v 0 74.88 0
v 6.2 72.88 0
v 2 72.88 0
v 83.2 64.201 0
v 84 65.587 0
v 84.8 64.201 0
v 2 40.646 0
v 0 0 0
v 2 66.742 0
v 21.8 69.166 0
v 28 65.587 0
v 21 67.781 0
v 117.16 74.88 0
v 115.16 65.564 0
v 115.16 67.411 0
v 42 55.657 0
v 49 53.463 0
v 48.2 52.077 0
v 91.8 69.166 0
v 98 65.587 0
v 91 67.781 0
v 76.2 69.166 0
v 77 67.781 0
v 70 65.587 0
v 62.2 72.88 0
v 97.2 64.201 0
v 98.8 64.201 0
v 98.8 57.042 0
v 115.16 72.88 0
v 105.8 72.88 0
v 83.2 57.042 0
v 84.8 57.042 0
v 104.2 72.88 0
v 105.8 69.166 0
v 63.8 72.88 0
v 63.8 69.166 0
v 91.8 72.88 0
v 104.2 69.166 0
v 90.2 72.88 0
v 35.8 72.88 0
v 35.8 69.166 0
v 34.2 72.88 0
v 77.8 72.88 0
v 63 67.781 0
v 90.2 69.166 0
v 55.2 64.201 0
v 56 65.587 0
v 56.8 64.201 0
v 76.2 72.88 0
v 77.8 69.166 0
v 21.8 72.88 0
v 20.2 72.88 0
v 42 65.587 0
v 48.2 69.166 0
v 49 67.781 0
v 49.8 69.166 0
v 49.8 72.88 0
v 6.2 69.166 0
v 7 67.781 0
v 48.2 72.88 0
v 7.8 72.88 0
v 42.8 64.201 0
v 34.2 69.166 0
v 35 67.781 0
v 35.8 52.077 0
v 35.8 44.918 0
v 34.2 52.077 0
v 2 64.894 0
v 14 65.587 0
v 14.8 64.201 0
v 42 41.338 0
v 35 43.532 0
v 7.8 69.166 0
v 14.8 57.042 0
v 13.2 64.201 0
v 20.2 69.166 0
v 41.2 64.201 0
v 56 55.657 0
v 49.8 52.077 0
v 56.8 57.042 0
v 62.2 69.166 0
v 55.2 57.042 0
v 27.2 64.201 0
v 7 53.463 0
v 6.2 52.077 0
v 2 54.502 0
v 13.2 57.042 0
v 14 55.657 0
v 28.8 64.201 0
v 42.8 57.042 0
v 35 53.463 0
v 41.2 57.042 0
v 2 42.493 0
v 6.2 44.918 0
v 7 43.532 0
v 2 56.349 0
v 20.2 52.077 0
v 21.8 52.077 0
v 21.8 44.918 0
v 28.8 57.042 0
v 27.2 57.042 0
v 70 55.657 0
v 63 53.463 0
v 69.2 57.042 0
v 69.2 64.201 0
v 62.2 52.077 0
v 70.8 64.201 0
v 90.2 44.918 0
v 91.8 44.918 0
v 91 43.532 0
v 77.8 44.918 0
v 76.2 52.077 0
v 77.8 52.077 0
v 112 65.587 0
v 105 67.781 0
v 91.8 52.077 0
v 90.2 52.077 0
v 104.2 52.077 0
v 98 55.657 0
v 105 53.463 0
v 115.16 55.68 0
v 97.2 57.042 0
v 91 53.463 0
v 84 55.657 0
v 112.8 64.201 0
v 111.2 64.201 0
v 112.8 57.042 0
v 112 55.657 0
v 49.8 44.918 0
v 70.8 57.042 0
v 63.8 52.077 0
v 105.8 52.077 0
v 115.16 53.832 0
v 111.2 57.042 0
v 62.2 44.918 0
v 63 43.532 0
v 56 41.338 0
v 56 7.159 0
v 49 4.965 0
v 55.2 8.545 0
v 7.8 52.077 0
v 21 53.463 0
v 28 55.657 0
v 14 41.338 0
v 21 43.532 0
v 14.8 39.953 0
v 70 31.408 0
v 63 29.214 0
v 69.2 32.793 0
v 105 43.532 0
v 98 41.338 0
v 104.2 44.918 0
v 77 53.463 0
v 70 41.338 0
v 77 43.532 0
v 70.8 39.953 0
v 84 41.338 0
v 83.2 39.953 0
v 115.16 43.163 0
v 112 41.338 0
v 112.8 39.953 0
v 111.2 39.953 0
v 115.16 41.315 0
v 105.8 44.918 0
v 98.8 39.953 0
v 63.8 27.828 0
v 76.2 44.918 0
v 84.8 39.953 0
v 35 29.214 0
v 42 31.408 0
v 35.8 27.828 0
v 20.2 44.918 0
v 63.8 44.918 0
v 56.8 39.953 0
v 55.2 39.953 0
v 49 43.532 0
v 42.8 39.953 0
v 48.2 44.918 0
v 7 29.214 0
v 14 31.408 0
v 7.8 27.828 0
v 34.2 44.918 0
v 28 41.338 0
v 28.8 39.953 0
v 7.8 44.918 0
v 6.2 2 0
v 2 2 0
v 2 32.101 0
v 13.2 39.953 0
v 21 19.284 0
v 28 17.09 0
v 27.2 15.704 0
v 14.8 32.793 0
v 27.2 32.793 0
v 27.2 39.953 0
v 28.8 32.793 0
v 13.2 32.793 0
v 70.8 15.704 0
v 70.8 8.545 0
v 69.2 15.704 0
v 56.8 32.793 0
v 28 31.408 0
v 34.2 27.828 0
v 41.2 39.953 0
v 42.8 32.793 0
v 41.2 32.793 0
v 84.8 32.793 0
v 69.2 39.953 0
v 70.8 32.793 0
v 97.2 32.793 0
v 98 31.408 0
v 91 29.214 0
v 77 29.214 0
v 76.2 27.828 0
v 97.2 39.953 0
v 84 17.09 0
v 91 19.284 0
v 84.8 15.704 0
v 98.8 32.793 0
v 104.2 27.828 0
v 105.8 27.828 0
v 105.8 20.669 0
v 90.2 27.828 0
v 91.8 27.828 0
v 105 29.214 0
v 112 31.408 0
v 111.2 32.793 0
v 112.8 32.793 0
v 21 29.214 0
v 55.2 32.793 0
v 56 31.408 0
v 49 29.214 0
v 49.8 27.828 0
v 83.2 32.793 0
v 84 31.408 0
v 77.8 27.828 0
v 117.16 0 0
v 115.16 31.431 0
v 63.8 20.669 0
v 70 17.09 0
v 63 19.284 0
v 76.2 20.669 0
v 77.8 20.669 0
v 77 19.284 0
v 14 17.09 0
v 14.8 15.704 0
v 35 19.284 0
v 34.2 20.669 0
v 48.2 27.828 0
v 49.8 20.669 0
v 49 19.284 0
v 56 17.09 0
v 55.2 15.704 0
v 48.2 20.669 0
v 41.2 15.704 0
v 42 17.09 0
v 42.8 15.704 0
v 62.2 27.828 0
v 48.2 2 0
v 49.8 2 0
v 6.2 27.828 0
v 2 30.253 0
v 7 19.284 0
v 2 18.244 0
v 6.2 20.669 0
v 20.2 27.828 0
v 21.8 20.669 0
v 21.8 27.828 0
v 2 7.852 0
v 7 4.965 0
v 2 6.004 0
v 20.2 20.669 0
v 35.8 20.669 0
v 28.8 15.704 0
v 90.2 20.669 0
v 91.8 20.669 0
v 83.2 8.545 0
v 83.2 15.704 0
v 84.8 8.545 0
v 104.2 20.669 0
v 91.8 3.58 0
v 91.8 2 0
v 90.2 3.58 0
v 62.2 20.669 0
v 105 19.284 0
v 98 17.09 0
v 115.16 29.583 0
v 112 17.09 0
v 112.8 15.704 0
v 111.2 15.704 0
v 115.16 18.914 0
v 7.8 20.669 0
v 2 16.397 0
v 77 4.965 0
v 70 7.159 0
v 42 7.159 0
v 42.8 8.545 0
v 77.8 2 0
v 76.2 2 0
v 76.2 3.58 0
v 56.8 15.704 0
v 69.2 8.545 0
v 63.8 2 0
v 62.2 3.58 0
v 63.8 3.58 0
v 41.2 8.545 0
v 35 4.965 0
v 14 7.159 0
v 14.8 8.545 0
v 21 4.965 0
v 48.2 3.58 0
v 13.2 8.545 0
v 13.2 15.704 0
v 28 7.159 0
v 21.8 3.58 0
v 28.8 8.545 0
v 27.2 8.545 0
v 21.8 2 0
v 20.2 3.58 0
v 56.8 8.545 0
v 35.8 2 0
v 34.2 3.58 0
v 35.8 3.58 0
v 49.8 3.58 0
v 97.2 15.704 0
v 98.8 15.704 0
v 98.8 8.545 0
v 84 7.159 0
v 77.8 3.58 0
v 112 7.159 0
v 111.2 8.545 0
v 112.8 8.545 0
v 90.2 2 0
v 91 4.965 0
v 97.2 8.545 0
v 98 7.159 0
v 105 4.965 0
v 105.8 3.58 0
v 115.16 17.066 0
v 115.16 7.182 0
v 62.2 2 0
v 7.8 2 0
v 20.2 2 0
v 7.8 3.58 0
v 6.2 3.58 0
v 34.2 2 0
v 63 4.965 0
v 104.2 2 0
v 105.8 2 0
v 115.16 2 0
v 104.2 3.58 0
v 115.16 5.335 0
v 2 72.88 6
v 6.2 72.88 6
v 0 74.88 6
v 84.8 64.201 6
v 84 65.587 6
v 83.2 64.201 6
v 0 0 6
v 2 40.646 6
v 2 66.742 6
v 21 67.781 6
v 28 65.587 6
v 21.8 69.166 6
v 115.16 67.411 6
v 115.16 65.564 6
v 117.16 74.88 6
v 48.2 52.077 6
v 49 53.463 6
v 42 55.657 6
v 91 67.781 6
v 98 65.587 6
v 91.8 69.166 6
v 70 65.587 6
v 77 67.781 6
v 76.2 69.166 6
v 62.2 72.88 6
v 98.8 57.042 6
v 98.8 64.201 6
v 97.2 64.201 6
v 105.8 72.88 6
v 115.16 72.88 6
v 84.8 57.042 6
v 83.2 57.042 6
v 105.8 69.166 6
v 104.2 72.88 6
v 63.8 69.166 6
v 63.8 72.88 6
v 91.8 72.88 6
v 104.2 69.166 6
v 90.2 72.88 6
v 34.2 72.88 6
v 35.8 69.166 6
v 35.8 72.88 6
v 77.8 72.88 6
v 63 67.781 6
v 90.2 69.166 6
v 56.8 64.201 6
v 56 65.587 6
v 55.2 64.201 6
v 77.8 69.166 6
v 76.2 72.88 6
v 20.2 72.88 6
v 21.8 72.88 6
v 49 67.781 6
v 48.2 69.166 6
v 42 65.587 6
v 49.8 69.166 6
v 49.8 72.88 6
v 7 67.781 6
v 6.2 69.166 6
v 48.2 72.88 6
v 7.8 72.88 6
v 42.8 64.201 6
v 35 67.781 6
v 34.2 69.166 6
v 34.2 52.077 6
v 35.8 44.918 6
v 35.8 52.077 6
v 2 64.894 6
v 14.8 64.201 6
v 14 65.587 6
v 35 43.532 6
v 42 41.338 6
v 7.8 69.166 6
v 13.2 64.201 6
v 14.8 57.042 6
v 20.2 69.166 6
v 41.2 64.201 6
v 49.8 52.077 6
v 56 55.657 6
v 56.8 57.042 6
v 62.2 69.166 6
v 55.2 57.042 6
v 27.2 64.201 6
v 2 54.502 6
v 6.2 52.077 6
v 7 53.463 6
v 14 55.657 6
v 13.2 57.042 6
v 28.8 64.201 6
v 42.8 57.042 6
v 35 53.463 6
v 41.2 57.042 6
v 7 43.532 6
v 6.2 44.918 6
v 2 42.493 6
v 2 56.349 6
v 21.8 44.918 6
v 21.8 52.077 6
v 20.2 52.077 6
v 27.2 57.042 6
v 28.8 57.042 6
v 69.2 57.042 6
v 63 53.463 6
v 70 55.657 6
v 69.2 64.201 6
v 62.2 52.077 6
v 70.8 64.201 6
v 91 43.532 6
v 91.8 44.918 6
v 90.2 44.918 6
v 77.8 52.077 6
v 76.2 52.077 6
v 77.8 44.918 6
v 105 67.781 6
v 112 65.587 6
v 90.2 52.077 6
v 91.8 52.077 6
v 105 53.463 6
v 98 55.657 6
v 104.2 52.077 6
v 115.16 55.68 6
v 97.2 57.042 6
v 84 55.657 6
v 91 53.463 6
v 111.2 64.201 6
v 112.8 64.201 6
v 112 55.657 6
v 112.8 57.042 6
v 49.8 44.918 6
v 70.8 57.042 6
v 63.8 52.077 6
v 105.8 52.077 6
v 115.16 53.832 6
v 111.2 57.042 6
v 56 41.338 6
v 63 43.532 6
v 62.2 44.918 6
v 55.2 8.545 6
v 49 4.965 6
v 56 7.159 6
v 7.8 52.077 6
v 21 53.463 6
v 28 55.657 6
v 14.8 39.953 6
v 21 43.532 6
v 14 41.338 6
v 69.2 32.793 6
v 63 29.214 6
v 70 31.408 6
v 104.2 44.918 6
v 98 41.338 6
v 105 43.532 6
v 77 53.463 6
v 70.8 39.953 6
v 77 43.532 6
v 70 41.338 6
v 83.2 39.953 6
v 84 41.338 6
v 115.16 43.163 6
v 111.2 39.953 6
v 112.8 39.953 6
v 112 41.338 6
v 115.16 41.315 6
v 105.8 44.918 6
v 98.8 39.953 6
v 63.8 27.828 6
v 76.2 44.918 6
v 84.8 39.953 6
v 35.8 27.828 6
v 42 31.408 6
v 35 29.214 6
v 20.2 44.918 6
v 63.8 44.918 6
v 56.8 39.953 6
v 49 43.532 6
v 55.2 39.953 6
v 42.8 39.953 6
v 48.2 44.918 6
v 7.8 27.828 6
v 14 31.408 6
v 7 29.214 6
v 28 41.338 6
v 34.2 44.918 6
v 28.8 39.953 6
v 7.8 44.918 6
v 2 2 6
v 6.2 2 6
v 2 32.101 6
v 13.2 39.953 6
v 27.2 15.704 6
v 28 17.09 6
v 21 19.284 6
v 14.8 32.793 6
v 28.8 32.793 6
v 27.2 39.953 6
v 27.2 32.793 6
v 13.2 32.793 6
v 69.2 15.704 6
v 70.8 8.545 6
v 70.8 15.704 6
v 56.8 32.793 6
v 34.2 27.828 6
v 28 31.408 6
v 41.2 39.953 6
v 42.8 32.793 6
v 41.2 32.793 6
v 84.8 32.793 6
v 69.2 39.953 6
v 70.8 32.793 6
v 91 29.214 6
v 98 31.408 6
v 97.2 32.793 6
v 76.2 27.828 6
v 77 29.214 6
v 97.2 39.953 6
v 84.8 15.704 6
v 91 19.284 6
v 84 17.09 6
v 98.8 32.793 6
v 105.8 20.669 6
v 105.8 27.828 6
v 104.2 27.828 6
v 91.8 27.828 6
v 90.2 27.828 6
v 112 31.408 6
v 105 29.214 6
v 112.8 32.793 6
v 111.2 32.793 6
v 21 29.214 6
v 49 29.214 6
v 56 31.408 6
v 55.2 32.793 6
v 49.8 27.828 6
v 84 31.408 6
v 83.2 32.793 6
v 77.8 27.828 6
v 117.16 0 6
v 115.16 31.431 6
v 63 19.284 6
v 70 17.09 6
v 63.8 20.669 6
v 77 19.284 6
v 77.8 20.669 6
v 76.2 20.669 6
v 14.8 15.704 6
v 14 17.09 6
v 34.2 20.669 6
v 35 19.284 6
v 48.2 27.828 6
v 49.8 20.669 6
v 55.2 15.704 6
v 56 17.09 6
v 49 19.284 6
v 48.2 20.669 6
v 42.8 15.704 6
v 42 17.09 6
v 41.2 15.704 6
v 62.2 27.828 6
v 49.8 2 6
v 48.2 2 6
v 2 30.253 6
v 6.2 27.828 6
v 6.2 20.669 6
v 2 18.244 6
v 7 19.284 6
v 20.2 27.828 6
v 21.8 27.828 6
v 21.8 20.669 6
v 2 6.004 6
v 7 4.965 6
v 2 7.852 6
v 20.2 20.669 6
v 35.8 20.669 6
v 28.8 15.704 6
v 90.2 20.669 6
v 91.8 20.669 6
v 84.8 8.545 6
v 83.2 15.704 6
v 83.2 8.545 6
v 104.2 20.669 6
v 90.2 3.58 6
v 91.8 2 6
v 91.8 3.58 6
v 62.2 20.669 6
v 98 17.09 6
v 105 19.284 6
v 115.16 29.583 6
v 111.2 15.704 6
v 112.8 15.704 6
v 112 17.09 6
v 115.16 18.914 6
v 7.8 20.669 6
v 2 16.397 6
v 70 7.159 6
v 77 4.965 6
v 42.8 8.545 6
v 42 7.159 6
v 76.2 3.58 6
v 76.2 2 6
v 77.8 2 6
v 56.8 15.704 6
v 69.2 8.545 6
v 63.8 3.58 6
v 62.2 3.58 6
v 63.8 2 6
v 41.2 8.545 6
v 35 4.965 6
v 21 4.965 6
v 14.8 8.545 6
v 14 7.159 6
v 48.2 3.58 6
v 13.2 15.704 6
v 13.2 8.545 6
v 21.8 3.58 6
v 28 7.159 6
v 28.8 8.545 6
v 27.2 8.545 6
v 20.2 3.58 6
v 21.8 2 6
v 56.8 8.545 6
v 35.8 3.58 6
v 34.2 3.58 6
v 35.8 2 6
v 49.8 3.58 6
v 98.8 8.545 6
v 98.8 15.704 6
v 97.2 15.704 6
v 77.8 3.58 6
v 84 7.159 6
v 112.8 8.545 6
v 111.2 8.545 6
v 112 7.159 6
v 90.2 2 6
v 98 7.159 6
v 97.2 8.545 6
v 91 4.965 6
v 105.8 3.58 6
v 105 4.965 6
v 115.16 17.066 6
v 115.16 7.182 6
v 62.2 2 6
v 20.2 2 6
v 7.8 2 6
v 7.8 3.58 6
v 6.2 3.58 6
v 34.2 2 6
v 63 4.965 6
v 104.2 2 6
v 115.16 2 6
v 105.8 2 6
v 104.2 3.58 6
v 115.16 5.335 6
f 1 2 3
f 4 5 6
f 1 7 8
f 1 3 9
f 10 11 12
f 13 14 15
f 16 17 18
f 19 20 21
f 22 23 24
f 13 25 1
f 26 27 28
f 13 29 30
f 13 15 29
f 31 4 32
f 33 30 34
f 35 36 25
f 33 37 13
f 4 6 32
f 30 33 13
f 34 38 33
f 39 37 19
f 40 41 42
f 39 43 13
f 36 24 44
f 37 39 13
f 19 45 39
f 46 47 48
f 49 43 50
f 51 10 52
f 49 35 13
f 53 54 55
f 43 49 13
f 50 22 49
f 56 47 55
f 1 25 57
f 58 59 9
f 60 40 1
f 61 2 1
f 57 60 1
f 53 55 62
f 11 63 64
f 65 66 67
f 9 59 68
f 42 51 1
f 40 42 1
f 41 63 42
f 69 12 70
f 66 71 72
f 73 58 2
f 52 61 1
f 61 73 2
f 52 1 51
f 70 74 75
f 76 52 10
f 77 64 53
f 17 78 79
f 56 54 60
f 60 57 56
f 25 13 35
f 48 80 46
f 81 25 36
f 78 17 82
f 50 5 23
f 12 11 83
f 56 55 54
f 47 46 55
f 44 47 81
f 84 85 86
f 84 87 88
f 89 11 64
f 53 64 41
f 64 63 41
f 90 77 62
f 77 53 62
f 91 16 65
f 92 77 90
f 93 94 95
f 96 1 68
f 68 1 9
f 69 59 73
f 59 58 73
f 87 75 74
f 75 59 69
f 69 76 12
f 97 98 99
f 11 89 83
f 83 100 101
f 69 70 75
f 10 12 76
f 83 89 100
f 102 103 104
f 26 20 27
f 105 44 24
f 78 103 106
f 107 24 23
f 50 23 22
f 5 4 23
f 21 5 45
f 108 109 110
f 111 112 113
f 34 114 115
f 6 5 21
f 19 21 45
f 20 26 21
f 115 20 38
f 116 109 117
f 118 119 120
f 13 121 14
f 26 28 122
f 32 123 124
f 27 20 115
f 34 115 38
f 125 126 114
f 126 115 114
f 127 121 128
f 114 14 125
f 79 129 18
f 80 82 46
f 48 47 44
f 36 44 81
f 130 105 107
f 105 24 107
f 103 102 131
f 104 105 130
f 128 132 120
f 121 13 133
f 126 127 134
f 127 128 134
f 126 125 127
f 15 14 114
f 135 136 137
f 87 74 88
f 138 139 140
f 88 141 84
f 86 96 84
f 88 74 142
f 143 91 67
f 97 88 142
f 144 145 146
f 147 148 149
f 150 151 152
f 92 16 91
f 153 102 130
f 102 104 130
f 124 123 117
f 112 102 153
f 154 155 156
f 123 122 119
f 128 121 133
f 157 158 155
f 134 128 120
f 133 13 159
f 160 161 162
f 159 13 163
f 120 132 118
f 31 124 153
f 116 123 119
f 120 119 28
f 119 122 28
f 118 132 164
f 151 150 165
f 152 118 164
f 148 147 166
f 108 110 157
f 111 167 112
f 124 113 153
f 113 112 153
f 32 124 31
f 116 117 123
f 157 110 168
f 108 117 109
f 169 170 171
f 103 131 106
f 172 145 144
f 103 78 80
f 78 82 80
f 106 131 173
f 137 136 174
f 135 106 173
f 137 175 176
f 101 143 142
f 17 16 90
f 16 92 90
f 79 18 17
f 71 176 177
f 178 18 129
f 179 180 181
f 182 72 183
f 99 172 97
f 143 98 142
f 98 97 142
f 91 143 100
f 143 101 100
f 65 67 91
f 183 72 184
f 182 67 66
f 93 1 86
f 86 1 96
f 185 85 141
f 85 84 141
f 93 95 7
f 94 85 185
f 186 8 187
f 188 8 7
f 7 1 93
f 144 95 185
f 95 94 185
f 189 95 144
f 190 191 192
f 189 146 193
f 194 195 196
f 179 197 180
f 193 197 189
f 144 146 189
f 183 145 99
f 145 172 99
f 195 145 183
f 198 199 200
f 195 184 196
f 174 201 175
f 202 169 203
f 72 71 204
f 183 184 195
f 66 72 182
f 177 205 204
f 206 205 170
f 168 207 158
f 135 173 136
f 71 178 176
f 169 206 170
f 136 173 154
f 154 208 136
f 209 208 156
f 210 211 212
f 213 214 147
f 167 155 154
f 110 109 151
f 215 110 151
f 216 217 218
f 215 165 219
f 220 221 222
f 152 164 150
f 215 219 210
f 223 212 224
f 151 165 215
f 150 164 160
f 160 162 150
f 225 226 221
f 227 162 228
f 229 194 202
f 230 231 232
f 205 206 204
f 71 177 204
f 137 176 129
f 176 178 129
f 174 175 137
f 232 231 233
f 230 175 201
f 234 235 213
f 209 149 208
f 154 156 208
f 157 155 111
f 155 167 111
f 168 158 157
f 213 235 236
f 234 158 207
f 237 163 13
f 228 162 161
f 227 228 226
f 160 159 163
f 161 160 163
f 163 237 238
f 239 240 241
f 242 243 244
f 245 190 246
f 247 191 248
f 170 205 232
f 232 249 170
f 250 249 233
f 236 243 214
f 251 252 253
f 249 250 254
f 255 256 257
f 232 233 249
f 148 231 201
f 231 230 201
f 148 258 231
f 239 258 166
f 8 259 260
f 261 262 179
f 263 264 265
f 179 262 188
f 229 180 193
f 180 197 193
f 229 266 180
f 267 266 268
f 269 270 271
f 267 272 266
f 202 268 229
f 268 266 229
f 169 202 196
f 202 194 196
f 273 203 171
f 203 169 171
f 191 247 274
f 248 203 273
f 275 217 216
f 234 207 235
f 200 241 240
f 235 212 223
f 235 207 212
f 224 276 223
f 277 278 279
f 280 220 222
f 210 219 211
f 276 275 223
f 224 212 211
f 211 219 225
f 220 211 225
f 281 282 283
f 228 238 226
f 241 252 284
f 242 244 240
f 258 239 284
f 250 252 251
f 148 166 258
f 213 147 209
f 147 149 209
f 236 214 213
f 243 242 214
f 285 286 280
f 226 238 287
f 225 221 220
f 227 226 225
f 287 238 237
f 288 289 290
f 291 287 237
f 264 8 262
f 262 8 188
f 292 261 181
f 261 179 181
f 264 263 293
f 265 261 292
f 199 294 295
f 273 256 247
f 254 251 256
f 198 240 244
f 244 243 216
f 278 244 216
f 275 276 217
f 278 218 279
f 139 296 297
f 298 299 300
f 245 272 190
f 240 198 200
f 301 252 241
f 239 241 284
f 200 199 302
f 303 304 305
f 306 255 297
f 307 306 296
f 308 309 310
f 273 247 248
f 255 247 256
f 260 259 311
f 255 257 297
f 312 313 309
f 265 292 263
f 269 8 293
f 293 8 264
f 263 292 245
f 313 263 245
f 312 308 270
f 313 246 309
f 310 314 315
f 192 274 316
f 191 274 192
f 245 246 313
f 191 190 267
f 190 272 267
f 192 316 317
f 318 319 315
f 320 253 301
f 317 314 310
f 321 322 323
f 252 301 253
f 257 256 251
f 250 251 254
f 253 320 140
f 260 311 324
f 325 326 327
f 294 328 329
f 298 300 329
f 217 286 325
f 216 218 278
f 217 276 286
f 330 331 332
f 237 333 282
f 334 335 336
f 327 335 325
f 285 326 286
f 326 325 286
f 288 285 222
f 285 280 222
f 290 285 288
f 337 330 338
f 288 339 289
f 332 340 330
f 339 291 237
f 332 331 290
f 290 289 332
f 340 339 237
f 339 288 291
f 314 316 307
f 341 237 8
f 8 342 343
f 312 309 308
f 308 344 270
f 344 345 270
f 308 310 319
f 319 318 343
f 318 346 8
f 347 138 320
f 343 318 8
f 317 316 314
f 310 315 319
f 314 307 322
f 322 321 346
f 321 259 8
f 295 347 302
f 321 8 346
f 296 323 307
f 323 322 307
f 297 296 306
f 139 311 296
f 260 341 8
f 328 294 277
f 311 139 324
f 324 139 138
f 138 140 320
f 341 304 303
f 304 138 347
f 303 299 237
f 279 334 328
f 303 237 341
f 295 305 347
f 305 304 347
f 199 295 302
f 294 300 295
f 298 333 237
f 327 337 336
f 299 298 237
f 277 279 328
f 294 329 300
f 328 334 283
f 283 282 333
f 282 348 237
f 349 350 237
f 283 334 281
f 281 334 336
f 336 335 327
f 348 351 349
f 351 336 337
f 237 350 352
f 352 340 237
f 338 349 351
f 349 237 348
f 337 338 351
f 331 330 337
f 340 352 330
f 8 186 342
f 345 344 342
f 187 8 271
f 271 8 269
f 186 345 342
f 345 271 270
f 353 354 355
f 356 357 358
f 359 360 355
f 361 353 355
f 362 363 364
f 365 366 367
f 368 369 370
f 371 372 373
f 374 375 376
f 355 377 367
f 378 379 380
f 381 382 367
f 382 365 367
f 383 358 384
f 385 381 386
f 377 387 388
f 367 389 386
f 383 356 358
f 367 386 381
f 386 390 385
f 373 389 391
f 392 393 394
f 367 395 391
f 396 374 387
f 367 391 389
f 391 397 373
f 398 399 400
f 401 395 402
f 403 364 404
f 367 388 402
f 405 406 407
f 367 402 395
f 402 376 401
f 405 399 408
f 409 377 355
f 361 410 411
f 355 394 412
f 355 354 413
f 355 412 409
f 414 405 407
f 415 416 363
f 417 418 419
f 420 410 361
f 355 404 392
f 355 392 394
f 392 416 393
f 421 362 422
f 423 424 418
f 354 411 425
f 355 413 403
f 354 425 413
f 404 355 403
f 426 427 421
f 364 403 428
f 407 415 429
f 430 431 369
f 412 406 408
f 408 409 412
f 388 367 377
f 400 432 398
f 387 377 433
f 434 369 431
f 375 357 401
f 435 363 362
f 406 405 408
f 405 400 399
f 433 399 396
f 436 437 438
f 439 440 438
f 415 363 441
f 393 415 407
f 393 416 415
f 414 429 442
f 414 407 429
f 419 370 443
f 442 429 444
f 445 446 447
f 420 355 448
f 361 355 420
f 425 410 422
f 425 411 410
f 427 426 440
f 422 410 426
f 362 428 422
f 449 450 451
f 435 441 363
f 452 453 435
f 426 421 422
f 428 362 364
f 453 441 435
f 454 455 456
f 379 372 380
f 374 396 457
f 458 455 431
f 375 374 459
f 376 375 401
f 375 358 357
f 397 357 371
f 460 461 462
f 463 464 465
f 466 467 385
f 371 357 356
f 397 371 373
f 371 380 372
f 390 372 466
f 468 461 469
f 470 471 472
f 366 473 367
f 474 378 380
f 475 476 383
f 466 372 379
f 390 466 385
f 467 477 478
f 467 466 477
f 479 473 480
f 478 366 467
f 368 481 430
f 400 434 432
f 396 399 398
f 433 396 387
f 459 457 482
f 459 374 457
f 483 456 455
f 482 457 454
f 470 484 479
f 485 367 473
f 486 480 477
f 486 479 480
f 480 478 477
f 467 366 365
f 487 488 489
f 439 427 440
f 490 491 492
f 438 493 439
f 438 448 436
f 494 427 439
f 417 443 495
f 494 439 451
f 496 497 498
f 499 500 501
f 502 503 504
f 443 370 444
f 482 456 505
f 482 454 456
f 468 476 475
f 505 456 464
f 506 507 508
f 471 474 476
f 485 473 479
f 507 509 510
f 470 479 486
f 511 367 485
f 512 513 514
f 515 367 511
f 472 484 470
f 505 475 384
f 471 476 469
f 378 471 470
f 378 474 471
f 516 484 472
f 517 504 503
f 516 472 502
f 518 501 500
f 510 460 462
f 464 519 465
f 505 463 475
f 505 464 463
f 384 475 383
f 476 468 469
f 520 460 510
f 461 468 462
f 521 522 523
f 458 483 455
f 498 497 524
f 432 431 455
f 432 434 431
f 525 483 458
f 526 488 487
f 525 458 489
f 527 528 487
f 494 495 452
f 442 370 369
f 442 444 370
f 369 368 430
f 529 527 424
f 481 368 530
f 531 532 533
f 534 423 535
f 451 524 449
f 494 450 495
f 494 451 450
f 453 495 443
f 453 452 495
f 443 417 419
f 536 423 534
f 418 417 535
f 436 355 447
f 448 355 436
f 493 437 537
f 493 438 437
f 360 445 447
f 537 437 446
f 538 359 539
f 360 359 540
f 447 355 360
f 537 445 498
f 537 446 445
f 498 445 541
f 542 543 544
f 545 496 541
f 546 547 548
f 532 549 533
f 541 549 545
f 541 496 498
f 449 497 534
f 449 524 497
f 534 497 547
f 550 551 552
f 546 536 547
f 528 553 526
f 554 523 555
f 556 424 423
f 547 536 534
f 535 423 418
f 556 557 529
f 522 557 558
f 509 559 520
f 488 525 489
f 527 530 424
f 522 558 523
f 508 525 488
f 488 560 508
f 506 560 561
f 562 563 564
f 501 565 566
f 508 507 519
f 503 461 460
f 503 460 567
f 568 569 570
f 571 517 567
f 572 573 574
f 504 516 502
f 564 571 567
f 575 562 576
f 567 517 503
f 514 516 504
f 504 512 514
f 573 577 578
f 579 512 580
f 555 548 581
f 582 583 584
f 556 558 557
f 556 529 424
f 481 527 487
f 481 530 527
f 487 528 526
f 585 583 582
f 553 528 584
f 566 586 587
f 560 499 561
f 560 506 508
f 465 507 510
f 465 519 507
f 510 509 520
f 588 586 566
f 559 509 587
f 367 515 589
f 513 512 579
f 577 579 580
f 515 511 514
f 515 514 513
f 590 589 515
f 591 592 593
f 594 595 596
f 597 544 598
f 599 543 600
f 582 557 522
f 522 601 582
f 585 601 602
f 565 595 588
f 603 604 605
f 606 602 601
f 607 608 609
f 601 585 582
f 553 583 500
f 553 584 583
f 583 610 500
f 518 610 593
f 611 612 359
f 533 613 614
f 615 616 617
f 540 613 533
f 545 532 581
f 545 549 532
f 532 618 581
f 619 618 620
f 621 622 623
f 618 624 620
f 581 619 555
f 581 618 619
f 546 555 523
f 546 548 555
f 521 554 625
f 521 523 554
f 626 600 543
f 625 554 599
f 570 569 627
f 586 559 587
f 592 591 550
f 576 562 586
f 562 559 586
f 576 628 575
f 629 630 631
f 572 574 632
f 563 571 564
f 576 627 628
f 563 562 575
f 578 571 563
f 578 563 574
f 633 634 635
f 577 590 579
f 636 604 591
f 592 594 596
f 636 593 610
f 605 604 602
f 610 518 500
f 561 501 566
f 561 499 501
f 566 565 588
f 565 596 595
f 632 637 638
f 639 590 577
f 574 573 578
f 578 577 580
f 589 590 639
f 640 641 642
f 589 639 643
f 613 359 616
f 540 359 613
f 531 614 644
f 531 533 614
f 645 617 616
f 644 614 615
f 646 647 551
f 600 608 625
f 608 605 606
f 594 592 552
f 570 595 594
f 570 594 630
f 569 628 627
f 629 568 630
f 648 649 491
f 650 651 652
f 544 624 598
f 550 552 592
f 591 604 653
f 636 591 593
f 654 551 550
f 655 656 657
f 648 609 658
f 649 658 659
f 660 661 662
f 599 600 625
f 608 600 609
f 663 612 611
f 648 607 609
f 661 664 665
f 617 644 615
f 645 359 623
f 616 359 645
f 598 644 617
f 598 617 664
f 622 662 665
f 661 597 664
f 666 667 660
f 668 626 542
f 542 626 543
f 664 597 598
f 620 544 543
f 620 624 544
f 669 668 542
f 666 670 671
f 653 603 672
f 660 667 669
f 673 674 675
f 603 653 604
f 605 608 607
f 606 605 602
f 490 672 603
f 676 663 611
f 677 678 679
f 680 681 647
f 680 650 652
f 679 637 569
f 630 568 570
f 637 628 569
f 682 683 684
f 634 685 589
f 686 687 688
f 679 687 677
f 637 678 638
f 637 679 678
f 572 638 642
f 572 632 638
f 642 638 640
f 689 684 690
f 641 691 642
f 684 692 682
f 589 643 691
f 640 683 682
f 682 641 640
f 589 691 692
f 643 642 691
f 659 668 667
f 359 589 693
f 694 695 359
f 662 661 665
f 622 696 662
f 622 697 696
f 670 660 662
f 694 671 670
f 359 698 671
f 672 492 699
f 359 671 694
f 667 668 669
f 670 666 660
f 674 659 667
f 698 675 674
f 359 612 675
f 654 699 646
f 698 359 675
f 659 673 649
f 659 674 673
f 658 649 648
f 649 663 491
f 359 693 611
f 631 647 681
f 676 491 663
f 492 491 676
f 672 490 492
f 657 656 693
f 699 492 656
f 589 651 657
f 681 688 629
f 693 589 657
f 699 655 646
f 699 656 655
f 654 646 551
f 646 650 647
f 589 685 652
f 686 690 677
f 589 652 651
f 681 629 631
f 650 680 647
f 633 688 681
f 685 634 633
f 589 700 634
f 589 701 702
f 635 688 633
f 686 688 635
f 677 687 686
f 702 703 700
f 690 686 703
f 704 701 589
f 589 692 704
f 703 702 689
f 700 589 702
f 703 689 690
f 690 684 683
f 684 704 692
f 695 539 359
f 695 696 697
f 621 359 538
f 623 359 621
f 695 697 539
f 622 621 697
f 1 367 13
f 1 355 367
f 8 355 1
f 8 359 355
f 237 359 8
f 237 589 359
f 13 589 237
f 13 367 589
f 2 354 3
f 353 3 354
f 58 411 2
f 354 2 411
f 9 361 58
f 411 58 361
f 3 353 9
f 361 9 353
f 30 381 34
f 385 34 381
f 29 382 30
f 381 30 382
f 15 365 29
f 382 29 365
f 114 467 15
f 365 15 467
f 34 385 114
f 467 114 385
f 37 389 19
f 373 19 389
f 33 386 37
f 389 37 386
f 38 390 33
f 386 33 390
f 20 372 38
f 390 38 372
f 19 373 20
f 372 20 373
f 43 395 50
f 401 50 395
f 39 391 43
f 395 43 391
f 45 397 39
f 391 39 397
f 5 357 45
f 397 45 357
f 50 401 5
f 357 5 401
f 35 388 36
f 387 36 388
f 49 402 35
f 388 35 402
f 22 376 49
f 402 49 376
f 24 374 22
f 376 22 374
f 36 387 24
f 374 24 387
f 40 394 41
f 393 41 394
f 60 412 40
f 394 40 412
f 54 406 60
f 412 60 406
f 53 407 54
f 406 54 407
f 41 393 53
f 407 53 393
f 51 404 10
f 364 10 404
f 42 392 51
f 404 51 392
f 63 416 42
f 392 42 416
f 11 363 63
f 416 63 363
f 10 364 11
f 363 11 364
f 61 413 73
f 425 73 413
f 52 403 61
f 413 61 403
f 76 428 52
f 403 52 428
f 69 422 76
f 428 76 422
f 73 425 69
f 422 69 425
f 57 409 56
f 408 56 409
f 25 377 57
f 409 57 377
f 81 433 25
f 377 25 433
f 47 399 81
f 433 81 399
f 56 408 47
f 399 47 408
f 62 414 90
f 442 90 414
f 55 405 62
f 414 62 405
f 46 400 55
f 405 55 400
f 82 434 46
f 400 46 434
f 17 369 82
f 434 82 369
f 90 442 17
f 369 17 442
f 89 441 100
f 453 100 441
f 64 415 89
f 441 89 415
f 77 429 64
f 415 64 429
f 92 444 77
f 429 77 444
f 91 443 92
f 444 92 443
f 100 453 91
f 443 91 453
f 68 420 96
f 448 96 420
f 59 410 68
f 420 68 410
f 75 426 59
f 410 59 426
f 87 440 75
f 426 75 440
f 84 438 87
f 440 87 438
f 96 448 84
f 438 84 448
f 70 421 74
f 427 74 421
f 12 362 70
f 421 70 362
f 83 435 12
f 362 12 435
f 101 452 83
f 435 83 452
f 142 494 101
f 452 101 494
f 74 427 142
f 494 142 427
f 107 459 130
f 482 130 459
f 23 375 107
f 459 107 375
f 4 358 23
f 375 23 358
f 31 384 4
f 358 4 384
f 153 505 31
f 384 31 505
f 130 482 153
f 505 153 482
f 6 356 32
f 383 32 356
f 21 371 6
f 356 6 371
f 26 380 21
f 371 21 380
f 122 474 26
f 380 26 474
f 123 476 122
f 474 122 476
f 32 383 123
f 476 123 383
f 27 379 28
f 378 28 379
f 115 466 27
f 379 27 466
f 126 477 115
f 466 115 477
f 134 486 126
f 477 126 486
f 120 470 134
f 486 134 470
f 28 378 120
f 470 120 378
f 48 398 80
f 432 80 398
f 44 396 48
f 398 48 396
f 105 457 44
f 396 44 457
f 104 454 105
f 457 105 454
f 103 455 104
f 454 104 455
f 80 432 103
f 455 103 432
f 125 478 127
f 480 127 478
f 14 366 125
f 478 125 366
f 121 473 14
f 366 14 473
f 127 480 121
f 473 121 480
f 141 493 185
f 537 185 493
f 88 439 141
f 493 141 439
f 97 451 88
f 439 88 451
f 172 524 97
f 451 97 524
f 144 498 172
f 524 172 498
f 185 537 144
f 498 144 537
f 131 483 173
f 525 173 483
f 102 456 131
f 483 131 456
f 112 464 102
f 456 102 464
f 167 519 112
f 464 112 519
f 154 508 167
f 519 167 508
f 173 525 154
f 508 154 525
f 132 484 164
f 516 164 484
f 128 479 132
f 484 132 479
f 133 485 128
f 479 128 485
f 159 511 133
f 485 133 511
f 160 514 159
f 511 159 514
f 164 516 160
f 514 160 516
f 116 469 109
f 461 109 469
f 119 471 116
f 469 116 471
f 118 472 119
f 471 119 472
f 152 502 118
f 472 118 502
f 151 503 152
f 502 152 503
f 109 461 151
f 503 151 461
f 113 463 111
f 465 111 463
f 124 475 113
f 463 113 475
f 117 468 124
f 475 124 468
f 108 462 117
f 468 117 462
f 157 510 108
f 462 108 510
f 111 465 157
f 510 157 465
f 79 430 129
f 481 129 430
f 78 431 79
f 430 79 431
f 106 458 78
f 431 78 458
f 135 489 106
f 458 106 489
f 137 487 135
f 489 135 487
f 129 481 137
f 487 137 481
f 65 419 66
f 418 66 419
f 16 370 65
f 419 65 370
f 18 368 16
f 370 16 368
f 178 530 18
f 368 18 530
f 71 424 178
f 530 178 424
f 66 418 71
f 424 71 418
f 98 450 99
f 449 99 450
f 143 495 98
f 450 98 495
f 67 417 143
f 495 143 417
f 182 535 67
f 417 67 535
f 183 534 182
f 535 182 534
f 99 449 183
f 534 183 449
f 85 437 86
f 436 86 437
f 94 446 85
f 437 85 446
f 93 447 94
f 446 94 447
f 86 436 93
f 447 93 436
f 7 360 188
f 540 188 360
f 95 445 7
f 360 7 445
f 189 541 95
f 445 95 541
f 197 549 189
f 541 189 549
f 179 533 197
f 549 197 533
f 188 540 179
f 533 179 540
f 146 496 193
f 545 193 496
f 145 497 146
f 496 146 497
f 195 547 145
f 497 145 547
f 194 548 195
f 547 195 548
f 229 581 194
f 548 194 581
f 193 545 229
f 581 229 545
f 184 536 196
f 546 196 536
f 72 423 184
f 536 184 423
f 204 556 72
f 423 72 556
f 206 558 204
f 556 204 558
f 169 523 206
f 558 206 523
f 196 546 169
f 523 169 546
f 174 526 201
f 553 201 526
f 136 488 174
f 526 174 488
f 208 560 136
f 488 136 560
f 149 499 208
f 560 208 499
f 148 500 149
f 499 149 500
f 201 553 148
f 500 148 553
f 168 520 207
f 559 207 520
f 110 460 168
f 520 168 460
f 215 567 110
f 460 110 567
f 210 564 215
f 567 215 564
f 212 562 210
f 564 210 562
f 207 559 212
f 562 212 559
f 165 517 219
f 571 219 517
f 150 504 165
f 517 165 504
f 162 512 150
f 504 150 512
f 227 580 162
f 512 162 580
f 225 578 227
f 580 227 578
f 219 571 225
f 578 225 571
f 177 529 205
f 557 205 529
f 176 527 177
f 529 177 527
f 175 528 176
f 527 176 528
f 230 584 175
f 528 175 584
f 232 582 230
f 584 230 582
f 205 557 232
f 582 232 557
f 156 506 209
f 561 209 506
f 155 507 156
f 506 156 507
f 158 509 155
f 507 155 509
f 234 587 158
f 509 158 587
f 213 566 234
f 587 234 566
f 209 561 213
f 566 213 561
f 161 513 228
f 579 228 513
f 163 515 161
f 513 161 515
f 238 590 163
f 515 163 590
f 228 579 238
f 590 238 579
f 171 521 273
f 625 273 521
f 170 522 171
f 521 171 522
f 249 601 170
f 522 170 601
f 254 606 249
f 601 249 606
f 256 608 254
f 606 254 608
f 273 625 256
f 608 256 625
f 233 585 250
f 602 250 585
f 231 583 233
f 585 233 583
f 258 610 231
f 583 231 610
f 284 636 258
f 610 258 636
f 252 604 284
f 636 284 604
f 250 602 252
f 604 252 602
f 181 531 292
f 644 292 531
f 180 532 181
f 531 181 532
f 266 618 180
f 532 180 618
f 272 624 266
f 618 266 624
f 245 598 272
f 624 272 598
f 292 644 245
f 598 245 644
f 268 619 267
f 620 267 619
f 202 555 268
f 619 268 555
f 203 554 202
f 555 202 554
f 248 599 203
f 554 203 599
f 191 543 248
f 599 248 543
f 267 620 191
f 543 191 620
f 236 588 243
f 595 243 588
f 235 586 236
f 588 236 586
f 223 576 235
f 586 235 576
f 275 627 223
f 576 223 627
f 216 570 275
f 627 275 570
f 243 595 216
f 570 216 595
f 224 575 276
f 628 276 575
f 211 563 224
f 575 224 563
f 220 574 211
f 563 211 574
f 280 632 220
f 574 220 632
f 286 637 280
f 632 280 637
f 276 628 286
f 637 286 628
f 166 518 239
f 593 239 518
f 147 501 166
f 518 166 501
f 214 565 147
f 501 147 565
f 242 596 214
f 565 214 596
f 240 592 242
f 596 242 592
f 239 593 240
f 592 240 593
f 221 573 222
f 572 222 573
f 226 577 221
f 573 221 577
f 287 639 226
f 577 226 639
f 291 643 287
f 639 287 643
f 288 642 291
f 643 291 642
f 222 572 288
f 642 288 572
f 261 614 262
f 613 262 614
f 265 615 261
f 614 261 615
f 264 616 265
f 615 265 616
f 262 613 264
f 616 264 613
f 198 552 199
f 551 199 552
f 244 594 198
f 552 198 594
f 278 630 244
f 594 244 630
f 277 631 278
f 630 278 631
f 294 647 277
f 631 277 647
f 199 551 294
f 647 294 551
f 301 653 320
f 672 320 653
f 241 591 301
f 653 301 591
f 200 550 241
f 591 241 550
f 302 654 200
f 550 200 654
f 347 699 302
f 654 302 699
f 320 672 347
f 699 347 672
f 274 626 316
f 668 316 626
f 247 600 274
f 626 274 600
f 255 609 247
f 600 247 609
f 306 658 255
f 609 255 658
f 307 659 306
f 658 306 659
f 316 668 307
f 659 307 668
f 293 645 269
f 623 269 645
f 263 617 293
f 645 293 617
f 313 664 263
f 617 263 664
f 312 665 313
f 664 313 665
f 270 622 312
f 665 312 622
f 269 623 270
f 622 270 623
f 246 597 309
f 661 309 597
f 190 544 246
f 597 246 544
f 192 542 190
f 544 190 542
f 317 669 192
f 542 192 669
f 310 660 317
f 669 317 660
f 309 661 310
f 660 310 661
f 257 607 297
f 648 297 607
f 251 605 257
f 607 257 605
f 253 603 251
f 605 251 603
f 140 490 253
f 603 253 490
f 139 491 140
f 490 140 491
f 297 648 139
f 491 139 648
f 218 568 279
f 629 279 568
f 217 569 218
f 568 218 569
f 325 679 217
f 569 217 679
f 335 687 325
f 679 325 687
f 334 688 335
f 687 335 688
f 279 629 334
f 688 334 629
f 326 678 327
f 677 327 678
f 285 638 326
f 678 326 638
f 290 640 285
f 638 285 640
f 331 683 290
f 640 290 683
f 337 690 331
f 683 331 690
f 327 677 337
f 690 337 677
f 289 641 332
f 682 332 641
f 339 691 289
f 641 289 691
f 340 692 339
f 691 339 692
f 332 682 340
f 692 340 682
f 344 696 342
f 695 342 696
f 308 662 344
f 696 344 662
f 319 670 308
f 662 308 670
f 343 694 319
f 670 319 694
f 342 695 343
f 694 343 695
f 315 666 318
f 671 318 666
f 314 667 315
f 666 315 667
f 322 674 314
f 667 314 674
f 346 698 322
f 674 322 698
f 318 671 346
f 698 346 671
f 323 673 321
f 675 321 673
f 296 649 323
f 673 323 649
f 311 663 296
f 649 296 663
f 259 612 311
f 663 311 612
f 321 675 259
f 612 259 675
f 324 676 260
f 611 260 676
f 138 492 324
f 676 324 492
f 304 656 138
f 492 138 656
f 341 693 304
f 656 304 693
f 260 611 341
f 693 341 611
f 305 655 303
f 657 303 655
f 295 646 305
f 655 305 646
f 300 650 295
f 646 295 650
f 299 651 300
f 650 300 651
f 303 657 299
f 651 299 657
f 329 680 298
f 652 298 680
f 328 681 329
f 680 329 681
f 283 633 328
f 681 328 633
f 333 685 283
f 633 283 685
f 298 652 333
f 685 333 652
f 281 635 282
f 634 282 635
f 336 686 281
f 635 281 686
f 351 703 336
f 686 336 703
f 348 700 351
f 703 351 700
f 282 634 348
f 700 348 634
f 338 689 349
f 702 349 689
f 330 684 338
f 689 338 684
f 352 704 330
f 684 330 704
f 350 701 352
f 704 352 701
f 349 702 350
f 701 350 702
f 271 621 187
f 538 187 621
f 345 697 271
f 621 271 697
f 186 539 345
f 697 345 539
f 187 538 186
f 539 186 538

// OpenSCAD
// file: labware.scad
// BaeBugs parametric labware library (labware twin), v0.1
// All parts are built as 2D profiles extruded in Z, so remixes render fast.
// Units: mm. SBS footprint per ANSI/SLAS 1-2004: 127.76 x 85.48.
// License: CERN-OHL-W-2.0 unless a part file says otherwise.

SBS_X = 127.76;
SBS_Y = 85.48;
$fn = 32;

// Rounded rectangle profile anchored at the origin.
module rrect(x, y, r = 3) {
    translate([r, r]) offset(r = r) square([x - 2 * r, y - 2 * r]);
}

// Grid of round holes. A1 is the back-left well, matching Opentrons/SBS naming,
// so row 0 sits at y = footprint_y - a1_y.
module hole_grid(rows, cols, pitch, hole_d, a1_x, a1_y, footprint_y) {
    for (r = [0 : rows - 1], c = [0 : cols - 1])
        translate([a1_x + c * pitch, footprint_y - a1_y - r * pitch]) circle(d = hole_d);
}

// Tube or tip rack plate: solid top deck with holes, plus a skirt so it sits in a deck slot.
module sbs_plate(rows = 8, cols = 12, pitch = 9, hole_d = 5.8, height = 20,
                 a1_x = 14.38, a1_y = 11.24, footprint_x = SBS_X, footprint_y = SBS_Y,
                 deck = 3, skirt = 2) {
    // top deck
    translate([0, 0, height - deck]) linear_extrude(deck)
        difference() {
            rrect(footprint_x, footprint_y);
            hole_grid(rows, cols, pitch, hole_d, a1_x, a1_y, footprint_y);
        }
    // skirt wall
    linear_extrude(height - deck)
        difference() {
            rrect(footprint_x, footprint_y);
            translate([skirt, skirt]) rrect(footprint_x - 2 * skirt, footprint_y - 2 * skirt, 2);
        }
    // bottom locator ring (keeps tubes from sliding, 1.5 mm floor with smaller holes)
    linear_extrude(1.5)
        difference() {
            translate([skirt, skirt]) rrect(footprint_x - 2 * skirt, footprint_y - 2 * skirt, 2);
            hole_grid(rows, cols, pitch, hole_d * 0.6, a1_x, a1_y, footprint_y);
        }
}

// Flat grid insert (e.g. 10x10 cryo box insert).
module grid_insert(rows = 10, cols = 10, pitch = 13, hole_d = 12.8, height = 12,
                   a1_x = 8, a1_y = 8, footprint_x = 133, footprint_y = 133) {
    linear_extrude(height)
        difference() {
            rrect(footprint_x, footprint_y, 2);
            hole_grid(rows, cols, pitch, hole_d, a1_x, a1_y, footprint_y);
        }
}

// Open lipped frame: the "folder" frame. Inserts rest on the inner lip.
module frame(footprint_x = SBS_X, footprint_y = SBS_Y, height = 12, wall = 5, lip = 2, lip_z = 2) {
    linear_extrude(height)
        difference() {
            rrect(footprint_x, footprint_y);
            translate([wall, wall]) square([footprint_x - 2 * wall, footprint_y - 2 * wall]);
        }
    linear_extrude(lip_z)
        difference() {
            translate([wall - 0.01, wall - 0.01]) square([footprint_x - 2 * wall + 0.02, footprint_y - 2 * wall + 0.02]);
            translate([wall + lip, wall + lip]) square([footprint_x - 2 * (wall + lip), footprint_y - 2 * (wall + lip)]);
        }
}

// Frame split into rows x cols windows, each with a perforated floor (printed mesh).
module grid_frame(footprint_x = SBS_X, footprint_y = SBS_Y, height = 8, wall = 4, rows = 2, cols = 3,
                  rib = 3, floor = 1.2, mesh_hole = 2, mesh_pitch = 3) {
    ix = footprint_x - 2 * wall;
    iy = footprint_y - 2 * wall;
    cw = (ix - (cols - 1) * rib) / cols;
    ch = (iy - (rows - 1) * rib) / rows;
    // walls and ribs
    linear_extrude(height)
        difference() {
            rrect(footprint_x, footprint_y);
            for (r = [0 : rows - 1], c = [0 : cols - 1])
                translate([wall + c * (cw + rib), wall + r * (ch + rib)]) square([cw, ch]);
        }
    // perforated floor (square holes print cleanly without supports)
    linear_extrude(floor)
        difference() {
            translate([wall, wall]) square([ix, iy]);
            for (r = [0 : rows - 1], c = [0 : cols - 1])
                translate([wall + c * (cw + rib), wall + r * (ch + rib)])
                    for (i = [0 : floor((cw - mesh_pitch) / mesh_pitch)], j = [0 : floor((ch - mesh_pitch) / mesh_pitch)])
                        translate([mesh_pitch * 0.75 + i * mesh_pitch, mesh_pitch * 0.75 + j * mesh_pitch])
                            square(mesh_hole, center = true);
        }
}

// Hexagonal lattice clipped to a rectangle with a solid rim.
module honeycomb(footprint_x = 117, footprint_y = 75, height = 6, cell = 14, wall = 1.6, rim = 2) {
    dx = cell;                 // across-flats pitch
    dy = cell * sqrt(3) / 2;   // row pitch
    linear_extrude(height)
        difference() {
            square([footprint_x, footprint_y]);
            intersection() {
                translate([rim, rim]) square([footprint_x - 2 * rim, footprint_y - 2 * rim]);
                for (j = [0 : ceil(footprint_y / dy)], i = [-1 : ceil(footprint_x / dx)])
                    translate([i * dx + (j % 2) * dx / 2, j * dy])
                        rotate(30) circle(d = (cell - wall) / cos(30), $fn = 6);
            }
        }
}
// main file
// Honeycomb insert for SBS frame
// part id: print-honeycomb  license: MIT
// labware.scad sha256: 025cbfe59bfb2d32557e6a9d5cc7a1fbf1fc54a5ea617dbfabe5a0ebfc3ffba2
// derived from: obs-printed-honeycomb
// Edit the parameters to remix. Catalog dimensions marked est. need calipers before a production run.
use <labware.scad>

honeycomb(footprint_x = 117.16, footprint_y = 74.88, height = 6.0, cell = 14.0, wall = 1.6);
